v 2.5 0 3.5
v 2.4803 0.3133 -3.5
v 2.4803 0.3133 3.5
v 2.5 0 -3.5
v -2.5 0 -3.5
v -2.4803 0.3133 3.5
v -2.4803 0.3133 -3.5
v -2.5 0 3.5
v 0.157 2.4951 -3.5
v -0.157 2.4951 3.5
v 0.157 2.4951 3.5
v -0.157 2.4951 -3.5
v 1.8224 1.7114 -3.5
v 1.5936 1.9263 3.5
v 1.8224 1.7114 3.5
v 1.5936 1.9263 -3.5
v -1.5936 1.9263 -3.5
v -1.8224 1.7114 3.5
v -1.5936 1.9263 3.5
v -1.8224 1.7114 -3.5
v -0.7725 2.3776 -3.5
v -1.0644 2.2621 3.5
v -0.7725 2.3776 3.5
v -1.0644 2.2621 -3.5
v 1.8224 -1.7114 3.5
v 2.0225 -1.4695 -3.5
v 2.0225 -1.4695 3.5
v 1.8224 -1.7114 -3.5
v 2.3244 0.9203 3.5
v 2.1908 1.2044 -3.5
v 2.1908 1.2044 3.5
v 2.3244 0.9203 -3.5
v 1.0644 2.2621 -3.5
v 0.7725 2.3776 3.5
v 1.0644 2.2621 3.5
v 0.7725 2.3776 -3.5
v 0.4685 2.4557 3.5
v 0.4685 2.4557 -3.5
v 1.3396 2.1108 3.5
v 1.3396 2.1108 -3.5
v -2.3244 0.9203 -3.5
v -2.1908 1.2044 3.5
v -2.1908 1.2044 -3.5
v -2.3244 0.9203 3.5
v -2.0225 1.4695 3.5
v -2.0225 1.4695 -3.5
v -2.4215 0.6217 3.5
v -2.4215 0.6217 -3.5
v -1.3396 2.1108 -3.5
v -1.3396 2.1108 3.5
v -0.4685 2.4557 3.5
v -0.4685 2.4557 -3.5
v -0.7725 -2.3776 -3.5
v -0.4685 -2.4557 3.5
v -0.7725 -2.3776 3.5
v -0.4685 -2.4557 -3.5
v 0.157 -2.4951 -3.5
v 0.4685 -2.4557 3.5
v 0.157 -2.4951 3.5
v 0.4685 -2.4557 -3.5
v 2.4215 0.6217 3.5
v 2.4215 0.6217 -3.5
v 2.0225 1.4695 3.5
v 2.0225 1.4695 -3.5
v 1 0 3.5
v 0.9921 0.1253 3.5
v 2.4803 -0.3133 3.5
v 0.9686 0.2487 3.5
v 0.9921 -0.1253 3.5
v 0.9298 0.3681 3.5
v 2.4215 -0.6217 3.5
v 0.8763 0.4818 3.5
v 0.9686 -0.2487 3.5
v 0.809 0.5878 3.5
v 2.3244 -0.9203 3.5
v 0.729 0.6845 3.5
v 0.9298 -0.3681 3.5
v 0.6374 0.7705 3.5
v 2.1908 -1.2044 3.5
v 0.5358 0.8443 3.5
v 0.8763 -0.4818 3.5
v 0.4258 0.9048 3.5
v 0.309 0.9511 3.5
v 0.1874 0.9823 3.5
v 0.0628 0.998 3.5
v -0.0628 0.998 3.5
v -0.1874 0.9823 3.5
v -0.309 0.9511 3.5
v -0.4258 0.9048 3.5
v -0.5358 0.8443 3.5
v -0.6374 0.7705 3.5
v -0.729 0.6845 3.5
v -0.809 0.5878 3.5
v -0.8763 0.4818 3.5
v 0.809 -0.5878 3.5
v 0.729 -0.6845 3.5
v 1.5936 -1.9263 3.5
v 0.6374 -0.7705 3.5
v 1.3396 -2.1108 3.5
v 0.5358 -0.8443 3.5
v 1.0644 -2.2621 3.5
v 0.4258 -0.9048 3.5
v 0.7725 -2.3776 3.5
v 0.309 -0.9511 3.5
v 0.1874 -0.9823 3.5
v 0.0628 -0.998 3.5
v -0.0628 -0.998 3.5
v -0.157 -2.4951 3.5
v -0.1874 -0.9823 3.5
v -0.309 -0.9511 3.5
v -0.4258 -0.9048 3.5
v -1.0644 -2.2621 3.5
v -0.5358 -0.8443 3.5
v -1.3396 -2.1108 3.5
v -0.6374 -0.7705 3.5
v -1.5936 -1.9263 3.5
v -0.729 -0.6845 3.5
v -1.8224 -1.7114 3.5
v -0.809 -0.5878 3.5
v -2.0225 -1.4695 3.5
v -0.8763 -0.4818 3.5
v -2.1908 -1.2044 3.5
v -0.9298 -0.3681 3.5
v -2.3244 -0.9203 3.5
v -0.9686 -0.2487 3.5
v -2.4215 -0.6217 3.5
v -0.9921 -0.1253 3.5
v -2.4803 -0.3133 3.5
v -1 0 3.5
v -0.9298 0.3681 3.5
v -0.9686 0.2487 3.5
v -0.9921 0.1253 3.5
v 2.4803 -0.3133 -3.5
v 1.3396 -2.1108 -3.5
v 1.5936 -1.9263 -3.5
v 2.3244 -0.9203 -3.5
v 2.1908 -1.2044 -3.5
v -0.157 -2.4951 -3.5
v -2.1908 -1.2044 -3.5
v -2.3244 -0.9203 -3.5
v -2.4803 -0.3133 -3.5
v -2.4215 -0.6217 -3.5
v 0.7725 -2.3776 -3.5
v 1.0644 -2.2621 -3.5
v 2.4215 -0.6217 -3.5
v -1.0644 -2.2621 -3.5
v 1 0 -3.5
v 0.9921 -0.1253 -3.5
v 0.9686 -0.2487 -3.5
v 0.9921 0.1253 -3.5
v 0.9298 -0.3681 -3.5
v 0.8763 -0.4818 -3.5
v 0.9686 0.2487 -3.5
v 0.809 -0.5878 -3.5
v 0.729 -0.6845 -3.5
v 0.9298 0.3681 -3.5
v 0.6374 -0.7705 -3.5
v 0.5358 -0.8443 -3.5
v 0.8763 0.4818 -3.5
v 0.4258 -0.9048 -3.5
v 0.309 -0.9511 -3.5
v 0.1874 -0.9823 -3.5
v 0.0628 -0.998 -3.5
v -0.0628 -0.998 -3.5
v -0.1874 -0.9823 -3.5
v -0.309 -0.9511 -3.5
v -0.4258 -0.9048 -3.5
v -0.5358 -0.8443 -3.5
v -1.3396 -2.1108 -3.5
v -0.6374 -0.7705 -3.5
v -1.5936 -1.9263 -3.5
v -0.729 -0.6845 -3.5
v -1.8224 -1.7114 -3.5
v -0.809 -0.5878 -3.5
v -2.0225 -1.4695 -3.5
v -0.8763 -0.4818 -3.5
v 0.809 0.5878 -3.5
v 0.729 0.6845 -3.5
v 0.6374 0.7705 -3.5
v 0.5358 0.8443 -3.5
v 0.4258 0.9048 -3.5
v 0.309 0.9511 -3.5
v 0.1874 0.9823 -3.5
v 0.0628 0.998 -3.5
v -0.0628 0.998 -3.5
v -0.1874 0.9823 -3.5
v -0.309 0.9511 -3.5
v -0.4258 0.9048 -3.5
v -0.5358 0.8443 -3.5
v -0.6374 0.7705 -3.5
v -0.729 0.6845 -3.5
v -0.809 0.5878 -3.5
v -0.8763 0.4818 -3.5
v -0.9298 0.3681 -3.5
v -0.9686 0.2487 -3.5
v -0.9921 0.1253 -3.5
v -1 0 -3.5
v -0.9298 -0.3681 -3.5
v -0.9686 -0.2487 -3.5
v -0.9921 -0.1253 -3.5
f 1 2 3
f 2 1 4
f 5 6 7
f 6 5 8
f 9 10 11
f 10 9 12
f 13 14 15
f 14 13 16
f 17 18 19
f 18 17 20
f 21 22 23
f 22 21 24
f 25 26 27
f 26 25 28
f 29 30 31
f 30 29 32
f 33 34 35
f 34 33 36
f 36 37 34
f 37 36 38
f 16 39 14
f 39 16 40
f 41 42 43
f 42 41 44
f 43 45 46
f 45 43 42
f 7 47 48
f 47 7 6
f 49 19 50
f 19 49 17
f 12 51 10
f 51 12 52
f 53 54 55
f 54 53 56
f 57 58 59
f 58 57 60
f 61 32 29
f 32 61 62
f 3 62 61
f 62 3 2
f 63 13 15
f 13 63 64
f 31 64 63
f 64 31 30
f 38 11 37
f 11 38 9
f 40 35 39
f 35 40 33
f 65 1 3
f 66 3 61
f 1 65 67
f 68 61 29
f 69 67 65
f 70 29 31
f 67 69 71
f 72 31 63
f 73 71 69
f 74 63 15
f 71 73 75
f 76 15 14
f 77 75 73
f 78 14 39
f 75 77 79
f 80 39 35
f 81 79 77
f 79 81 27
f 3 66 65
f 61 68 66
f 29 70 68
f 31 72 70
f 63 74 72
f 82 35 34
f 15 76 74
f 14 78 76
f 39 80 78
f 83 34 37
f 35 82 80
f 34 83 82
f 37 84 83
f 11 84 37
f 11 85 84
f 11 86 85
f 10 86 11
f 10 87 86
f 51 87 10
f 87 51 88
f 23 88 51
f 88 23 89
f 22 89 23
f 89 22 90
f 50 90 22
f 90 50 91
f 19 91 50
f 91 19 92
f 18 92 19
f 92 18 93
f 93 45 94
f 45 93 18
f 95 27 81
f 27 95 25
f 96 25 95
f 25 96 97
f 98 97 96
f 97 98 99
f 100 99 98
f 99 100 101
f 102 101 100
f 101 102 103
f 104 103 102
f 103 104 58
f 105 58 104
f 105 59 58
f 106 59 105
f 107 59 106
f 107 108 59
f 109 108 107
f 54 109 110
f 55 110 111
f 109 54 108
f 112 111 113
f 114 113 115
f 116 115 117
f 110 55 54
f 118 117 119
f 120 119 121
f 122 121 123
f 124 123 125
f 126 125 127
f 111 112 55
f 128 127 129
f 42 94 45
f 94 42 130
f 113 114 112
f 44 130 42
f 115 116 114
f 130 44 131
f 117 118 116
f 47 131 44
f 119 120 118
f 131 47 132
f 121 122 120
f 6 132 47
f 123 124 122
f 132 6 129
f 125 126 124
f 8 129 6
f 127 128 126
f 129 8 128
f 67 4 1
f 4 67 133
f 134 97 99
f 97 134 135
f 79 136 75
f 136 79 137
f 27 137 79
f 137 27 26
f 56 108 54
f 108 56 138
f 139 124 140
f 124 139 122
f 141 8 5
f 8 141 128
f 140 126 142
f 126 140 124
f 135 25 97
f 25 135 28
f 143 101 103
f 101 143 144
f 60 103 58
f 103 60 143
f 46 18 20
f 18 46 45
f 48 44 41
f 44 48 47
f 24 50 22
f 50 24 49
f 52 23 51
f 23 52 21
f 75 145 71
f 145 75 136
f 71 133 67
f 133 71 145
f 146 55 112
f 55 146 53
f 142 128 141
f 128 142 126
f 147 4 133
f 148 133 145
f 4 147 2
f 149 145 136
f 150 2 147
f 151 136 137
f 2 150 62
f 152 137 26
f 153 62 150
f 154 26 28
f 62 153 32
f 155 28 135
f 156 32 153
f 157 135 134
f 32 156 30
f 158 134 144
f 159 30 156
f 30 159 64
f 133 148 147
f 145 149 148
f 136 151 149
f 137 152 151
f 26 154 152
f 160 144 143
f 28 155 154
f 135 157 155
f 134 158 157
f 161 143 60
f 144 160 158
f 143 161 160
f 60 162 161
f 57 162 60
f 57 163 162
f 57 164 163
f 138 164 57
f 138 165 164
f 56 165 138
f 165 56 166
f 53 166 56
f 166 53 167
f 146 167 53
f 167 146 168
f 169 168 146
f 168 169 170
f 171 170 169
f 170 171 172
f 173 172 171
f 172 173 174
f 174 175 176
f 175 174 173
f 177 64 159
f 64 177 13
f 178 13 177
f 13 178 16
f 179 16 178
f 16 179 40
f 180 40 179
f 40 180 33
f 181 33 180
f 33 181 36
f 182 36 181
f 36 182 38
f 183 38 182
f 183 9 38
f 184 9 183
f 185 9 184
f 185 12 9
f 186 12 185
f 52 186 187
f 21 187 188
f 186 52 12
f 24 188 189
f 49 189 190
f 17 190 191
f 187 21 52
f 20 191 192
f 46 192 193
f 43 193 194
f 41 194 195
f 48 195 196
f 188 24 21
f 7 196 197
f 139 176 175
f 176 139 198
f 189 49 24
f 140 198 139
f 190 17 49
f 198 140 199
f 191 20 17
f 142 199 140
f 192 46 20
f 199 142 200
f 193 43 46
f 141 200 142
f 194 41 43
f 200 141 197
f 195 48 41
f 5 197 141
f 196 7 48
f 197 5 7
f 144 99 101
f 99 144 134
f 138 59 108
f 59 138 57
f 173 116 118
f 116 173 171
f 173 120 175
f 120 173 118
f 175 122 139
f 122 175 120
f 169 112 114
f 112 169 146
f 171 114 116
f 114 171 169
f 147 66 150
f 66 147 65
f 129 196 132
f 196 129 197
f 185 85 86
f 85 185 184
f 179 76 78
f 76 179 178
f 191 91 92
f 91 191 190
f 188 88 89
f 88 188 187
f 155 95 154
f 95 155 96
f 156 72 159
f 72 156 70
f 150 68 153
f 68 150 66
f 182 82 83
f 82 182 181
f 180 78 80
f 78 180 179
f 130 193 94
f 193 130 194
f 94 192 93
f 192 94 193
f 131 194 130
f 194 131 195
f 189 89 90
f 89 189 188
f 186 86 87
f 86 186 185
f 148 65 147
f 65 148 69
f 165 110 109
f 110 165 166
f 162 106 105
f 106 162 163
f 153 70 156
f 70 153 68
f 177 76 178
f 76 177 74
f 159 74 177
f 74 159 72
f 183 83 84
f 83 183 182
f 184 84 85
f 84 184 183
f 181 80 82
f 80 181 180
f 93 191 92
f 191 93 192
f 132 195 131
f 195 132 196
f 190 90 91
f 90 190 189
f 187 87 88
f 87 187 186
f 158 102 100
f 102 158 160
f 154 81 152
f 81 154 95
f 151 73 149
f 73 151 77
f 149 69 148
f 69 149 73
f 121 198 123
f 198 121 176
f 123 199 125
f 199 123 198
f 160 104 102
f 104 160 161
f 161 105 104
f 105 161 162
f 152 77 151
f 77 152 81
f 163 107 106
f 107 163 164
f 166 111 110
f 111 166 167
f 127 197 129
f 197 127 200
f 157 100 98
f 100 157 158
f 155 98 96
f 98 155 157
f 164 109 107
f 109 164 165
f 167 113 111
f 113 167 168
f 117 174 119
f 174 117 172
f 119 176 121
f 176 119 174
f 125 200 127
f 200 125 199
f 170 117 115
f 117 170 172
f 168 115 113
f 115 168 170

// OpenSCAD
$fn = 50;


difference() {
	union() {
		translate(v = [0, 0, -3.5000000000]) {
			cylinder(h = 7, r = 2.5000000000);
		}
	}
	union() {
		translate(v = [0, 0, -100.0000000000]) {
			cylinder(h = 200, r = 1.0000000000);
		}
	}
}
